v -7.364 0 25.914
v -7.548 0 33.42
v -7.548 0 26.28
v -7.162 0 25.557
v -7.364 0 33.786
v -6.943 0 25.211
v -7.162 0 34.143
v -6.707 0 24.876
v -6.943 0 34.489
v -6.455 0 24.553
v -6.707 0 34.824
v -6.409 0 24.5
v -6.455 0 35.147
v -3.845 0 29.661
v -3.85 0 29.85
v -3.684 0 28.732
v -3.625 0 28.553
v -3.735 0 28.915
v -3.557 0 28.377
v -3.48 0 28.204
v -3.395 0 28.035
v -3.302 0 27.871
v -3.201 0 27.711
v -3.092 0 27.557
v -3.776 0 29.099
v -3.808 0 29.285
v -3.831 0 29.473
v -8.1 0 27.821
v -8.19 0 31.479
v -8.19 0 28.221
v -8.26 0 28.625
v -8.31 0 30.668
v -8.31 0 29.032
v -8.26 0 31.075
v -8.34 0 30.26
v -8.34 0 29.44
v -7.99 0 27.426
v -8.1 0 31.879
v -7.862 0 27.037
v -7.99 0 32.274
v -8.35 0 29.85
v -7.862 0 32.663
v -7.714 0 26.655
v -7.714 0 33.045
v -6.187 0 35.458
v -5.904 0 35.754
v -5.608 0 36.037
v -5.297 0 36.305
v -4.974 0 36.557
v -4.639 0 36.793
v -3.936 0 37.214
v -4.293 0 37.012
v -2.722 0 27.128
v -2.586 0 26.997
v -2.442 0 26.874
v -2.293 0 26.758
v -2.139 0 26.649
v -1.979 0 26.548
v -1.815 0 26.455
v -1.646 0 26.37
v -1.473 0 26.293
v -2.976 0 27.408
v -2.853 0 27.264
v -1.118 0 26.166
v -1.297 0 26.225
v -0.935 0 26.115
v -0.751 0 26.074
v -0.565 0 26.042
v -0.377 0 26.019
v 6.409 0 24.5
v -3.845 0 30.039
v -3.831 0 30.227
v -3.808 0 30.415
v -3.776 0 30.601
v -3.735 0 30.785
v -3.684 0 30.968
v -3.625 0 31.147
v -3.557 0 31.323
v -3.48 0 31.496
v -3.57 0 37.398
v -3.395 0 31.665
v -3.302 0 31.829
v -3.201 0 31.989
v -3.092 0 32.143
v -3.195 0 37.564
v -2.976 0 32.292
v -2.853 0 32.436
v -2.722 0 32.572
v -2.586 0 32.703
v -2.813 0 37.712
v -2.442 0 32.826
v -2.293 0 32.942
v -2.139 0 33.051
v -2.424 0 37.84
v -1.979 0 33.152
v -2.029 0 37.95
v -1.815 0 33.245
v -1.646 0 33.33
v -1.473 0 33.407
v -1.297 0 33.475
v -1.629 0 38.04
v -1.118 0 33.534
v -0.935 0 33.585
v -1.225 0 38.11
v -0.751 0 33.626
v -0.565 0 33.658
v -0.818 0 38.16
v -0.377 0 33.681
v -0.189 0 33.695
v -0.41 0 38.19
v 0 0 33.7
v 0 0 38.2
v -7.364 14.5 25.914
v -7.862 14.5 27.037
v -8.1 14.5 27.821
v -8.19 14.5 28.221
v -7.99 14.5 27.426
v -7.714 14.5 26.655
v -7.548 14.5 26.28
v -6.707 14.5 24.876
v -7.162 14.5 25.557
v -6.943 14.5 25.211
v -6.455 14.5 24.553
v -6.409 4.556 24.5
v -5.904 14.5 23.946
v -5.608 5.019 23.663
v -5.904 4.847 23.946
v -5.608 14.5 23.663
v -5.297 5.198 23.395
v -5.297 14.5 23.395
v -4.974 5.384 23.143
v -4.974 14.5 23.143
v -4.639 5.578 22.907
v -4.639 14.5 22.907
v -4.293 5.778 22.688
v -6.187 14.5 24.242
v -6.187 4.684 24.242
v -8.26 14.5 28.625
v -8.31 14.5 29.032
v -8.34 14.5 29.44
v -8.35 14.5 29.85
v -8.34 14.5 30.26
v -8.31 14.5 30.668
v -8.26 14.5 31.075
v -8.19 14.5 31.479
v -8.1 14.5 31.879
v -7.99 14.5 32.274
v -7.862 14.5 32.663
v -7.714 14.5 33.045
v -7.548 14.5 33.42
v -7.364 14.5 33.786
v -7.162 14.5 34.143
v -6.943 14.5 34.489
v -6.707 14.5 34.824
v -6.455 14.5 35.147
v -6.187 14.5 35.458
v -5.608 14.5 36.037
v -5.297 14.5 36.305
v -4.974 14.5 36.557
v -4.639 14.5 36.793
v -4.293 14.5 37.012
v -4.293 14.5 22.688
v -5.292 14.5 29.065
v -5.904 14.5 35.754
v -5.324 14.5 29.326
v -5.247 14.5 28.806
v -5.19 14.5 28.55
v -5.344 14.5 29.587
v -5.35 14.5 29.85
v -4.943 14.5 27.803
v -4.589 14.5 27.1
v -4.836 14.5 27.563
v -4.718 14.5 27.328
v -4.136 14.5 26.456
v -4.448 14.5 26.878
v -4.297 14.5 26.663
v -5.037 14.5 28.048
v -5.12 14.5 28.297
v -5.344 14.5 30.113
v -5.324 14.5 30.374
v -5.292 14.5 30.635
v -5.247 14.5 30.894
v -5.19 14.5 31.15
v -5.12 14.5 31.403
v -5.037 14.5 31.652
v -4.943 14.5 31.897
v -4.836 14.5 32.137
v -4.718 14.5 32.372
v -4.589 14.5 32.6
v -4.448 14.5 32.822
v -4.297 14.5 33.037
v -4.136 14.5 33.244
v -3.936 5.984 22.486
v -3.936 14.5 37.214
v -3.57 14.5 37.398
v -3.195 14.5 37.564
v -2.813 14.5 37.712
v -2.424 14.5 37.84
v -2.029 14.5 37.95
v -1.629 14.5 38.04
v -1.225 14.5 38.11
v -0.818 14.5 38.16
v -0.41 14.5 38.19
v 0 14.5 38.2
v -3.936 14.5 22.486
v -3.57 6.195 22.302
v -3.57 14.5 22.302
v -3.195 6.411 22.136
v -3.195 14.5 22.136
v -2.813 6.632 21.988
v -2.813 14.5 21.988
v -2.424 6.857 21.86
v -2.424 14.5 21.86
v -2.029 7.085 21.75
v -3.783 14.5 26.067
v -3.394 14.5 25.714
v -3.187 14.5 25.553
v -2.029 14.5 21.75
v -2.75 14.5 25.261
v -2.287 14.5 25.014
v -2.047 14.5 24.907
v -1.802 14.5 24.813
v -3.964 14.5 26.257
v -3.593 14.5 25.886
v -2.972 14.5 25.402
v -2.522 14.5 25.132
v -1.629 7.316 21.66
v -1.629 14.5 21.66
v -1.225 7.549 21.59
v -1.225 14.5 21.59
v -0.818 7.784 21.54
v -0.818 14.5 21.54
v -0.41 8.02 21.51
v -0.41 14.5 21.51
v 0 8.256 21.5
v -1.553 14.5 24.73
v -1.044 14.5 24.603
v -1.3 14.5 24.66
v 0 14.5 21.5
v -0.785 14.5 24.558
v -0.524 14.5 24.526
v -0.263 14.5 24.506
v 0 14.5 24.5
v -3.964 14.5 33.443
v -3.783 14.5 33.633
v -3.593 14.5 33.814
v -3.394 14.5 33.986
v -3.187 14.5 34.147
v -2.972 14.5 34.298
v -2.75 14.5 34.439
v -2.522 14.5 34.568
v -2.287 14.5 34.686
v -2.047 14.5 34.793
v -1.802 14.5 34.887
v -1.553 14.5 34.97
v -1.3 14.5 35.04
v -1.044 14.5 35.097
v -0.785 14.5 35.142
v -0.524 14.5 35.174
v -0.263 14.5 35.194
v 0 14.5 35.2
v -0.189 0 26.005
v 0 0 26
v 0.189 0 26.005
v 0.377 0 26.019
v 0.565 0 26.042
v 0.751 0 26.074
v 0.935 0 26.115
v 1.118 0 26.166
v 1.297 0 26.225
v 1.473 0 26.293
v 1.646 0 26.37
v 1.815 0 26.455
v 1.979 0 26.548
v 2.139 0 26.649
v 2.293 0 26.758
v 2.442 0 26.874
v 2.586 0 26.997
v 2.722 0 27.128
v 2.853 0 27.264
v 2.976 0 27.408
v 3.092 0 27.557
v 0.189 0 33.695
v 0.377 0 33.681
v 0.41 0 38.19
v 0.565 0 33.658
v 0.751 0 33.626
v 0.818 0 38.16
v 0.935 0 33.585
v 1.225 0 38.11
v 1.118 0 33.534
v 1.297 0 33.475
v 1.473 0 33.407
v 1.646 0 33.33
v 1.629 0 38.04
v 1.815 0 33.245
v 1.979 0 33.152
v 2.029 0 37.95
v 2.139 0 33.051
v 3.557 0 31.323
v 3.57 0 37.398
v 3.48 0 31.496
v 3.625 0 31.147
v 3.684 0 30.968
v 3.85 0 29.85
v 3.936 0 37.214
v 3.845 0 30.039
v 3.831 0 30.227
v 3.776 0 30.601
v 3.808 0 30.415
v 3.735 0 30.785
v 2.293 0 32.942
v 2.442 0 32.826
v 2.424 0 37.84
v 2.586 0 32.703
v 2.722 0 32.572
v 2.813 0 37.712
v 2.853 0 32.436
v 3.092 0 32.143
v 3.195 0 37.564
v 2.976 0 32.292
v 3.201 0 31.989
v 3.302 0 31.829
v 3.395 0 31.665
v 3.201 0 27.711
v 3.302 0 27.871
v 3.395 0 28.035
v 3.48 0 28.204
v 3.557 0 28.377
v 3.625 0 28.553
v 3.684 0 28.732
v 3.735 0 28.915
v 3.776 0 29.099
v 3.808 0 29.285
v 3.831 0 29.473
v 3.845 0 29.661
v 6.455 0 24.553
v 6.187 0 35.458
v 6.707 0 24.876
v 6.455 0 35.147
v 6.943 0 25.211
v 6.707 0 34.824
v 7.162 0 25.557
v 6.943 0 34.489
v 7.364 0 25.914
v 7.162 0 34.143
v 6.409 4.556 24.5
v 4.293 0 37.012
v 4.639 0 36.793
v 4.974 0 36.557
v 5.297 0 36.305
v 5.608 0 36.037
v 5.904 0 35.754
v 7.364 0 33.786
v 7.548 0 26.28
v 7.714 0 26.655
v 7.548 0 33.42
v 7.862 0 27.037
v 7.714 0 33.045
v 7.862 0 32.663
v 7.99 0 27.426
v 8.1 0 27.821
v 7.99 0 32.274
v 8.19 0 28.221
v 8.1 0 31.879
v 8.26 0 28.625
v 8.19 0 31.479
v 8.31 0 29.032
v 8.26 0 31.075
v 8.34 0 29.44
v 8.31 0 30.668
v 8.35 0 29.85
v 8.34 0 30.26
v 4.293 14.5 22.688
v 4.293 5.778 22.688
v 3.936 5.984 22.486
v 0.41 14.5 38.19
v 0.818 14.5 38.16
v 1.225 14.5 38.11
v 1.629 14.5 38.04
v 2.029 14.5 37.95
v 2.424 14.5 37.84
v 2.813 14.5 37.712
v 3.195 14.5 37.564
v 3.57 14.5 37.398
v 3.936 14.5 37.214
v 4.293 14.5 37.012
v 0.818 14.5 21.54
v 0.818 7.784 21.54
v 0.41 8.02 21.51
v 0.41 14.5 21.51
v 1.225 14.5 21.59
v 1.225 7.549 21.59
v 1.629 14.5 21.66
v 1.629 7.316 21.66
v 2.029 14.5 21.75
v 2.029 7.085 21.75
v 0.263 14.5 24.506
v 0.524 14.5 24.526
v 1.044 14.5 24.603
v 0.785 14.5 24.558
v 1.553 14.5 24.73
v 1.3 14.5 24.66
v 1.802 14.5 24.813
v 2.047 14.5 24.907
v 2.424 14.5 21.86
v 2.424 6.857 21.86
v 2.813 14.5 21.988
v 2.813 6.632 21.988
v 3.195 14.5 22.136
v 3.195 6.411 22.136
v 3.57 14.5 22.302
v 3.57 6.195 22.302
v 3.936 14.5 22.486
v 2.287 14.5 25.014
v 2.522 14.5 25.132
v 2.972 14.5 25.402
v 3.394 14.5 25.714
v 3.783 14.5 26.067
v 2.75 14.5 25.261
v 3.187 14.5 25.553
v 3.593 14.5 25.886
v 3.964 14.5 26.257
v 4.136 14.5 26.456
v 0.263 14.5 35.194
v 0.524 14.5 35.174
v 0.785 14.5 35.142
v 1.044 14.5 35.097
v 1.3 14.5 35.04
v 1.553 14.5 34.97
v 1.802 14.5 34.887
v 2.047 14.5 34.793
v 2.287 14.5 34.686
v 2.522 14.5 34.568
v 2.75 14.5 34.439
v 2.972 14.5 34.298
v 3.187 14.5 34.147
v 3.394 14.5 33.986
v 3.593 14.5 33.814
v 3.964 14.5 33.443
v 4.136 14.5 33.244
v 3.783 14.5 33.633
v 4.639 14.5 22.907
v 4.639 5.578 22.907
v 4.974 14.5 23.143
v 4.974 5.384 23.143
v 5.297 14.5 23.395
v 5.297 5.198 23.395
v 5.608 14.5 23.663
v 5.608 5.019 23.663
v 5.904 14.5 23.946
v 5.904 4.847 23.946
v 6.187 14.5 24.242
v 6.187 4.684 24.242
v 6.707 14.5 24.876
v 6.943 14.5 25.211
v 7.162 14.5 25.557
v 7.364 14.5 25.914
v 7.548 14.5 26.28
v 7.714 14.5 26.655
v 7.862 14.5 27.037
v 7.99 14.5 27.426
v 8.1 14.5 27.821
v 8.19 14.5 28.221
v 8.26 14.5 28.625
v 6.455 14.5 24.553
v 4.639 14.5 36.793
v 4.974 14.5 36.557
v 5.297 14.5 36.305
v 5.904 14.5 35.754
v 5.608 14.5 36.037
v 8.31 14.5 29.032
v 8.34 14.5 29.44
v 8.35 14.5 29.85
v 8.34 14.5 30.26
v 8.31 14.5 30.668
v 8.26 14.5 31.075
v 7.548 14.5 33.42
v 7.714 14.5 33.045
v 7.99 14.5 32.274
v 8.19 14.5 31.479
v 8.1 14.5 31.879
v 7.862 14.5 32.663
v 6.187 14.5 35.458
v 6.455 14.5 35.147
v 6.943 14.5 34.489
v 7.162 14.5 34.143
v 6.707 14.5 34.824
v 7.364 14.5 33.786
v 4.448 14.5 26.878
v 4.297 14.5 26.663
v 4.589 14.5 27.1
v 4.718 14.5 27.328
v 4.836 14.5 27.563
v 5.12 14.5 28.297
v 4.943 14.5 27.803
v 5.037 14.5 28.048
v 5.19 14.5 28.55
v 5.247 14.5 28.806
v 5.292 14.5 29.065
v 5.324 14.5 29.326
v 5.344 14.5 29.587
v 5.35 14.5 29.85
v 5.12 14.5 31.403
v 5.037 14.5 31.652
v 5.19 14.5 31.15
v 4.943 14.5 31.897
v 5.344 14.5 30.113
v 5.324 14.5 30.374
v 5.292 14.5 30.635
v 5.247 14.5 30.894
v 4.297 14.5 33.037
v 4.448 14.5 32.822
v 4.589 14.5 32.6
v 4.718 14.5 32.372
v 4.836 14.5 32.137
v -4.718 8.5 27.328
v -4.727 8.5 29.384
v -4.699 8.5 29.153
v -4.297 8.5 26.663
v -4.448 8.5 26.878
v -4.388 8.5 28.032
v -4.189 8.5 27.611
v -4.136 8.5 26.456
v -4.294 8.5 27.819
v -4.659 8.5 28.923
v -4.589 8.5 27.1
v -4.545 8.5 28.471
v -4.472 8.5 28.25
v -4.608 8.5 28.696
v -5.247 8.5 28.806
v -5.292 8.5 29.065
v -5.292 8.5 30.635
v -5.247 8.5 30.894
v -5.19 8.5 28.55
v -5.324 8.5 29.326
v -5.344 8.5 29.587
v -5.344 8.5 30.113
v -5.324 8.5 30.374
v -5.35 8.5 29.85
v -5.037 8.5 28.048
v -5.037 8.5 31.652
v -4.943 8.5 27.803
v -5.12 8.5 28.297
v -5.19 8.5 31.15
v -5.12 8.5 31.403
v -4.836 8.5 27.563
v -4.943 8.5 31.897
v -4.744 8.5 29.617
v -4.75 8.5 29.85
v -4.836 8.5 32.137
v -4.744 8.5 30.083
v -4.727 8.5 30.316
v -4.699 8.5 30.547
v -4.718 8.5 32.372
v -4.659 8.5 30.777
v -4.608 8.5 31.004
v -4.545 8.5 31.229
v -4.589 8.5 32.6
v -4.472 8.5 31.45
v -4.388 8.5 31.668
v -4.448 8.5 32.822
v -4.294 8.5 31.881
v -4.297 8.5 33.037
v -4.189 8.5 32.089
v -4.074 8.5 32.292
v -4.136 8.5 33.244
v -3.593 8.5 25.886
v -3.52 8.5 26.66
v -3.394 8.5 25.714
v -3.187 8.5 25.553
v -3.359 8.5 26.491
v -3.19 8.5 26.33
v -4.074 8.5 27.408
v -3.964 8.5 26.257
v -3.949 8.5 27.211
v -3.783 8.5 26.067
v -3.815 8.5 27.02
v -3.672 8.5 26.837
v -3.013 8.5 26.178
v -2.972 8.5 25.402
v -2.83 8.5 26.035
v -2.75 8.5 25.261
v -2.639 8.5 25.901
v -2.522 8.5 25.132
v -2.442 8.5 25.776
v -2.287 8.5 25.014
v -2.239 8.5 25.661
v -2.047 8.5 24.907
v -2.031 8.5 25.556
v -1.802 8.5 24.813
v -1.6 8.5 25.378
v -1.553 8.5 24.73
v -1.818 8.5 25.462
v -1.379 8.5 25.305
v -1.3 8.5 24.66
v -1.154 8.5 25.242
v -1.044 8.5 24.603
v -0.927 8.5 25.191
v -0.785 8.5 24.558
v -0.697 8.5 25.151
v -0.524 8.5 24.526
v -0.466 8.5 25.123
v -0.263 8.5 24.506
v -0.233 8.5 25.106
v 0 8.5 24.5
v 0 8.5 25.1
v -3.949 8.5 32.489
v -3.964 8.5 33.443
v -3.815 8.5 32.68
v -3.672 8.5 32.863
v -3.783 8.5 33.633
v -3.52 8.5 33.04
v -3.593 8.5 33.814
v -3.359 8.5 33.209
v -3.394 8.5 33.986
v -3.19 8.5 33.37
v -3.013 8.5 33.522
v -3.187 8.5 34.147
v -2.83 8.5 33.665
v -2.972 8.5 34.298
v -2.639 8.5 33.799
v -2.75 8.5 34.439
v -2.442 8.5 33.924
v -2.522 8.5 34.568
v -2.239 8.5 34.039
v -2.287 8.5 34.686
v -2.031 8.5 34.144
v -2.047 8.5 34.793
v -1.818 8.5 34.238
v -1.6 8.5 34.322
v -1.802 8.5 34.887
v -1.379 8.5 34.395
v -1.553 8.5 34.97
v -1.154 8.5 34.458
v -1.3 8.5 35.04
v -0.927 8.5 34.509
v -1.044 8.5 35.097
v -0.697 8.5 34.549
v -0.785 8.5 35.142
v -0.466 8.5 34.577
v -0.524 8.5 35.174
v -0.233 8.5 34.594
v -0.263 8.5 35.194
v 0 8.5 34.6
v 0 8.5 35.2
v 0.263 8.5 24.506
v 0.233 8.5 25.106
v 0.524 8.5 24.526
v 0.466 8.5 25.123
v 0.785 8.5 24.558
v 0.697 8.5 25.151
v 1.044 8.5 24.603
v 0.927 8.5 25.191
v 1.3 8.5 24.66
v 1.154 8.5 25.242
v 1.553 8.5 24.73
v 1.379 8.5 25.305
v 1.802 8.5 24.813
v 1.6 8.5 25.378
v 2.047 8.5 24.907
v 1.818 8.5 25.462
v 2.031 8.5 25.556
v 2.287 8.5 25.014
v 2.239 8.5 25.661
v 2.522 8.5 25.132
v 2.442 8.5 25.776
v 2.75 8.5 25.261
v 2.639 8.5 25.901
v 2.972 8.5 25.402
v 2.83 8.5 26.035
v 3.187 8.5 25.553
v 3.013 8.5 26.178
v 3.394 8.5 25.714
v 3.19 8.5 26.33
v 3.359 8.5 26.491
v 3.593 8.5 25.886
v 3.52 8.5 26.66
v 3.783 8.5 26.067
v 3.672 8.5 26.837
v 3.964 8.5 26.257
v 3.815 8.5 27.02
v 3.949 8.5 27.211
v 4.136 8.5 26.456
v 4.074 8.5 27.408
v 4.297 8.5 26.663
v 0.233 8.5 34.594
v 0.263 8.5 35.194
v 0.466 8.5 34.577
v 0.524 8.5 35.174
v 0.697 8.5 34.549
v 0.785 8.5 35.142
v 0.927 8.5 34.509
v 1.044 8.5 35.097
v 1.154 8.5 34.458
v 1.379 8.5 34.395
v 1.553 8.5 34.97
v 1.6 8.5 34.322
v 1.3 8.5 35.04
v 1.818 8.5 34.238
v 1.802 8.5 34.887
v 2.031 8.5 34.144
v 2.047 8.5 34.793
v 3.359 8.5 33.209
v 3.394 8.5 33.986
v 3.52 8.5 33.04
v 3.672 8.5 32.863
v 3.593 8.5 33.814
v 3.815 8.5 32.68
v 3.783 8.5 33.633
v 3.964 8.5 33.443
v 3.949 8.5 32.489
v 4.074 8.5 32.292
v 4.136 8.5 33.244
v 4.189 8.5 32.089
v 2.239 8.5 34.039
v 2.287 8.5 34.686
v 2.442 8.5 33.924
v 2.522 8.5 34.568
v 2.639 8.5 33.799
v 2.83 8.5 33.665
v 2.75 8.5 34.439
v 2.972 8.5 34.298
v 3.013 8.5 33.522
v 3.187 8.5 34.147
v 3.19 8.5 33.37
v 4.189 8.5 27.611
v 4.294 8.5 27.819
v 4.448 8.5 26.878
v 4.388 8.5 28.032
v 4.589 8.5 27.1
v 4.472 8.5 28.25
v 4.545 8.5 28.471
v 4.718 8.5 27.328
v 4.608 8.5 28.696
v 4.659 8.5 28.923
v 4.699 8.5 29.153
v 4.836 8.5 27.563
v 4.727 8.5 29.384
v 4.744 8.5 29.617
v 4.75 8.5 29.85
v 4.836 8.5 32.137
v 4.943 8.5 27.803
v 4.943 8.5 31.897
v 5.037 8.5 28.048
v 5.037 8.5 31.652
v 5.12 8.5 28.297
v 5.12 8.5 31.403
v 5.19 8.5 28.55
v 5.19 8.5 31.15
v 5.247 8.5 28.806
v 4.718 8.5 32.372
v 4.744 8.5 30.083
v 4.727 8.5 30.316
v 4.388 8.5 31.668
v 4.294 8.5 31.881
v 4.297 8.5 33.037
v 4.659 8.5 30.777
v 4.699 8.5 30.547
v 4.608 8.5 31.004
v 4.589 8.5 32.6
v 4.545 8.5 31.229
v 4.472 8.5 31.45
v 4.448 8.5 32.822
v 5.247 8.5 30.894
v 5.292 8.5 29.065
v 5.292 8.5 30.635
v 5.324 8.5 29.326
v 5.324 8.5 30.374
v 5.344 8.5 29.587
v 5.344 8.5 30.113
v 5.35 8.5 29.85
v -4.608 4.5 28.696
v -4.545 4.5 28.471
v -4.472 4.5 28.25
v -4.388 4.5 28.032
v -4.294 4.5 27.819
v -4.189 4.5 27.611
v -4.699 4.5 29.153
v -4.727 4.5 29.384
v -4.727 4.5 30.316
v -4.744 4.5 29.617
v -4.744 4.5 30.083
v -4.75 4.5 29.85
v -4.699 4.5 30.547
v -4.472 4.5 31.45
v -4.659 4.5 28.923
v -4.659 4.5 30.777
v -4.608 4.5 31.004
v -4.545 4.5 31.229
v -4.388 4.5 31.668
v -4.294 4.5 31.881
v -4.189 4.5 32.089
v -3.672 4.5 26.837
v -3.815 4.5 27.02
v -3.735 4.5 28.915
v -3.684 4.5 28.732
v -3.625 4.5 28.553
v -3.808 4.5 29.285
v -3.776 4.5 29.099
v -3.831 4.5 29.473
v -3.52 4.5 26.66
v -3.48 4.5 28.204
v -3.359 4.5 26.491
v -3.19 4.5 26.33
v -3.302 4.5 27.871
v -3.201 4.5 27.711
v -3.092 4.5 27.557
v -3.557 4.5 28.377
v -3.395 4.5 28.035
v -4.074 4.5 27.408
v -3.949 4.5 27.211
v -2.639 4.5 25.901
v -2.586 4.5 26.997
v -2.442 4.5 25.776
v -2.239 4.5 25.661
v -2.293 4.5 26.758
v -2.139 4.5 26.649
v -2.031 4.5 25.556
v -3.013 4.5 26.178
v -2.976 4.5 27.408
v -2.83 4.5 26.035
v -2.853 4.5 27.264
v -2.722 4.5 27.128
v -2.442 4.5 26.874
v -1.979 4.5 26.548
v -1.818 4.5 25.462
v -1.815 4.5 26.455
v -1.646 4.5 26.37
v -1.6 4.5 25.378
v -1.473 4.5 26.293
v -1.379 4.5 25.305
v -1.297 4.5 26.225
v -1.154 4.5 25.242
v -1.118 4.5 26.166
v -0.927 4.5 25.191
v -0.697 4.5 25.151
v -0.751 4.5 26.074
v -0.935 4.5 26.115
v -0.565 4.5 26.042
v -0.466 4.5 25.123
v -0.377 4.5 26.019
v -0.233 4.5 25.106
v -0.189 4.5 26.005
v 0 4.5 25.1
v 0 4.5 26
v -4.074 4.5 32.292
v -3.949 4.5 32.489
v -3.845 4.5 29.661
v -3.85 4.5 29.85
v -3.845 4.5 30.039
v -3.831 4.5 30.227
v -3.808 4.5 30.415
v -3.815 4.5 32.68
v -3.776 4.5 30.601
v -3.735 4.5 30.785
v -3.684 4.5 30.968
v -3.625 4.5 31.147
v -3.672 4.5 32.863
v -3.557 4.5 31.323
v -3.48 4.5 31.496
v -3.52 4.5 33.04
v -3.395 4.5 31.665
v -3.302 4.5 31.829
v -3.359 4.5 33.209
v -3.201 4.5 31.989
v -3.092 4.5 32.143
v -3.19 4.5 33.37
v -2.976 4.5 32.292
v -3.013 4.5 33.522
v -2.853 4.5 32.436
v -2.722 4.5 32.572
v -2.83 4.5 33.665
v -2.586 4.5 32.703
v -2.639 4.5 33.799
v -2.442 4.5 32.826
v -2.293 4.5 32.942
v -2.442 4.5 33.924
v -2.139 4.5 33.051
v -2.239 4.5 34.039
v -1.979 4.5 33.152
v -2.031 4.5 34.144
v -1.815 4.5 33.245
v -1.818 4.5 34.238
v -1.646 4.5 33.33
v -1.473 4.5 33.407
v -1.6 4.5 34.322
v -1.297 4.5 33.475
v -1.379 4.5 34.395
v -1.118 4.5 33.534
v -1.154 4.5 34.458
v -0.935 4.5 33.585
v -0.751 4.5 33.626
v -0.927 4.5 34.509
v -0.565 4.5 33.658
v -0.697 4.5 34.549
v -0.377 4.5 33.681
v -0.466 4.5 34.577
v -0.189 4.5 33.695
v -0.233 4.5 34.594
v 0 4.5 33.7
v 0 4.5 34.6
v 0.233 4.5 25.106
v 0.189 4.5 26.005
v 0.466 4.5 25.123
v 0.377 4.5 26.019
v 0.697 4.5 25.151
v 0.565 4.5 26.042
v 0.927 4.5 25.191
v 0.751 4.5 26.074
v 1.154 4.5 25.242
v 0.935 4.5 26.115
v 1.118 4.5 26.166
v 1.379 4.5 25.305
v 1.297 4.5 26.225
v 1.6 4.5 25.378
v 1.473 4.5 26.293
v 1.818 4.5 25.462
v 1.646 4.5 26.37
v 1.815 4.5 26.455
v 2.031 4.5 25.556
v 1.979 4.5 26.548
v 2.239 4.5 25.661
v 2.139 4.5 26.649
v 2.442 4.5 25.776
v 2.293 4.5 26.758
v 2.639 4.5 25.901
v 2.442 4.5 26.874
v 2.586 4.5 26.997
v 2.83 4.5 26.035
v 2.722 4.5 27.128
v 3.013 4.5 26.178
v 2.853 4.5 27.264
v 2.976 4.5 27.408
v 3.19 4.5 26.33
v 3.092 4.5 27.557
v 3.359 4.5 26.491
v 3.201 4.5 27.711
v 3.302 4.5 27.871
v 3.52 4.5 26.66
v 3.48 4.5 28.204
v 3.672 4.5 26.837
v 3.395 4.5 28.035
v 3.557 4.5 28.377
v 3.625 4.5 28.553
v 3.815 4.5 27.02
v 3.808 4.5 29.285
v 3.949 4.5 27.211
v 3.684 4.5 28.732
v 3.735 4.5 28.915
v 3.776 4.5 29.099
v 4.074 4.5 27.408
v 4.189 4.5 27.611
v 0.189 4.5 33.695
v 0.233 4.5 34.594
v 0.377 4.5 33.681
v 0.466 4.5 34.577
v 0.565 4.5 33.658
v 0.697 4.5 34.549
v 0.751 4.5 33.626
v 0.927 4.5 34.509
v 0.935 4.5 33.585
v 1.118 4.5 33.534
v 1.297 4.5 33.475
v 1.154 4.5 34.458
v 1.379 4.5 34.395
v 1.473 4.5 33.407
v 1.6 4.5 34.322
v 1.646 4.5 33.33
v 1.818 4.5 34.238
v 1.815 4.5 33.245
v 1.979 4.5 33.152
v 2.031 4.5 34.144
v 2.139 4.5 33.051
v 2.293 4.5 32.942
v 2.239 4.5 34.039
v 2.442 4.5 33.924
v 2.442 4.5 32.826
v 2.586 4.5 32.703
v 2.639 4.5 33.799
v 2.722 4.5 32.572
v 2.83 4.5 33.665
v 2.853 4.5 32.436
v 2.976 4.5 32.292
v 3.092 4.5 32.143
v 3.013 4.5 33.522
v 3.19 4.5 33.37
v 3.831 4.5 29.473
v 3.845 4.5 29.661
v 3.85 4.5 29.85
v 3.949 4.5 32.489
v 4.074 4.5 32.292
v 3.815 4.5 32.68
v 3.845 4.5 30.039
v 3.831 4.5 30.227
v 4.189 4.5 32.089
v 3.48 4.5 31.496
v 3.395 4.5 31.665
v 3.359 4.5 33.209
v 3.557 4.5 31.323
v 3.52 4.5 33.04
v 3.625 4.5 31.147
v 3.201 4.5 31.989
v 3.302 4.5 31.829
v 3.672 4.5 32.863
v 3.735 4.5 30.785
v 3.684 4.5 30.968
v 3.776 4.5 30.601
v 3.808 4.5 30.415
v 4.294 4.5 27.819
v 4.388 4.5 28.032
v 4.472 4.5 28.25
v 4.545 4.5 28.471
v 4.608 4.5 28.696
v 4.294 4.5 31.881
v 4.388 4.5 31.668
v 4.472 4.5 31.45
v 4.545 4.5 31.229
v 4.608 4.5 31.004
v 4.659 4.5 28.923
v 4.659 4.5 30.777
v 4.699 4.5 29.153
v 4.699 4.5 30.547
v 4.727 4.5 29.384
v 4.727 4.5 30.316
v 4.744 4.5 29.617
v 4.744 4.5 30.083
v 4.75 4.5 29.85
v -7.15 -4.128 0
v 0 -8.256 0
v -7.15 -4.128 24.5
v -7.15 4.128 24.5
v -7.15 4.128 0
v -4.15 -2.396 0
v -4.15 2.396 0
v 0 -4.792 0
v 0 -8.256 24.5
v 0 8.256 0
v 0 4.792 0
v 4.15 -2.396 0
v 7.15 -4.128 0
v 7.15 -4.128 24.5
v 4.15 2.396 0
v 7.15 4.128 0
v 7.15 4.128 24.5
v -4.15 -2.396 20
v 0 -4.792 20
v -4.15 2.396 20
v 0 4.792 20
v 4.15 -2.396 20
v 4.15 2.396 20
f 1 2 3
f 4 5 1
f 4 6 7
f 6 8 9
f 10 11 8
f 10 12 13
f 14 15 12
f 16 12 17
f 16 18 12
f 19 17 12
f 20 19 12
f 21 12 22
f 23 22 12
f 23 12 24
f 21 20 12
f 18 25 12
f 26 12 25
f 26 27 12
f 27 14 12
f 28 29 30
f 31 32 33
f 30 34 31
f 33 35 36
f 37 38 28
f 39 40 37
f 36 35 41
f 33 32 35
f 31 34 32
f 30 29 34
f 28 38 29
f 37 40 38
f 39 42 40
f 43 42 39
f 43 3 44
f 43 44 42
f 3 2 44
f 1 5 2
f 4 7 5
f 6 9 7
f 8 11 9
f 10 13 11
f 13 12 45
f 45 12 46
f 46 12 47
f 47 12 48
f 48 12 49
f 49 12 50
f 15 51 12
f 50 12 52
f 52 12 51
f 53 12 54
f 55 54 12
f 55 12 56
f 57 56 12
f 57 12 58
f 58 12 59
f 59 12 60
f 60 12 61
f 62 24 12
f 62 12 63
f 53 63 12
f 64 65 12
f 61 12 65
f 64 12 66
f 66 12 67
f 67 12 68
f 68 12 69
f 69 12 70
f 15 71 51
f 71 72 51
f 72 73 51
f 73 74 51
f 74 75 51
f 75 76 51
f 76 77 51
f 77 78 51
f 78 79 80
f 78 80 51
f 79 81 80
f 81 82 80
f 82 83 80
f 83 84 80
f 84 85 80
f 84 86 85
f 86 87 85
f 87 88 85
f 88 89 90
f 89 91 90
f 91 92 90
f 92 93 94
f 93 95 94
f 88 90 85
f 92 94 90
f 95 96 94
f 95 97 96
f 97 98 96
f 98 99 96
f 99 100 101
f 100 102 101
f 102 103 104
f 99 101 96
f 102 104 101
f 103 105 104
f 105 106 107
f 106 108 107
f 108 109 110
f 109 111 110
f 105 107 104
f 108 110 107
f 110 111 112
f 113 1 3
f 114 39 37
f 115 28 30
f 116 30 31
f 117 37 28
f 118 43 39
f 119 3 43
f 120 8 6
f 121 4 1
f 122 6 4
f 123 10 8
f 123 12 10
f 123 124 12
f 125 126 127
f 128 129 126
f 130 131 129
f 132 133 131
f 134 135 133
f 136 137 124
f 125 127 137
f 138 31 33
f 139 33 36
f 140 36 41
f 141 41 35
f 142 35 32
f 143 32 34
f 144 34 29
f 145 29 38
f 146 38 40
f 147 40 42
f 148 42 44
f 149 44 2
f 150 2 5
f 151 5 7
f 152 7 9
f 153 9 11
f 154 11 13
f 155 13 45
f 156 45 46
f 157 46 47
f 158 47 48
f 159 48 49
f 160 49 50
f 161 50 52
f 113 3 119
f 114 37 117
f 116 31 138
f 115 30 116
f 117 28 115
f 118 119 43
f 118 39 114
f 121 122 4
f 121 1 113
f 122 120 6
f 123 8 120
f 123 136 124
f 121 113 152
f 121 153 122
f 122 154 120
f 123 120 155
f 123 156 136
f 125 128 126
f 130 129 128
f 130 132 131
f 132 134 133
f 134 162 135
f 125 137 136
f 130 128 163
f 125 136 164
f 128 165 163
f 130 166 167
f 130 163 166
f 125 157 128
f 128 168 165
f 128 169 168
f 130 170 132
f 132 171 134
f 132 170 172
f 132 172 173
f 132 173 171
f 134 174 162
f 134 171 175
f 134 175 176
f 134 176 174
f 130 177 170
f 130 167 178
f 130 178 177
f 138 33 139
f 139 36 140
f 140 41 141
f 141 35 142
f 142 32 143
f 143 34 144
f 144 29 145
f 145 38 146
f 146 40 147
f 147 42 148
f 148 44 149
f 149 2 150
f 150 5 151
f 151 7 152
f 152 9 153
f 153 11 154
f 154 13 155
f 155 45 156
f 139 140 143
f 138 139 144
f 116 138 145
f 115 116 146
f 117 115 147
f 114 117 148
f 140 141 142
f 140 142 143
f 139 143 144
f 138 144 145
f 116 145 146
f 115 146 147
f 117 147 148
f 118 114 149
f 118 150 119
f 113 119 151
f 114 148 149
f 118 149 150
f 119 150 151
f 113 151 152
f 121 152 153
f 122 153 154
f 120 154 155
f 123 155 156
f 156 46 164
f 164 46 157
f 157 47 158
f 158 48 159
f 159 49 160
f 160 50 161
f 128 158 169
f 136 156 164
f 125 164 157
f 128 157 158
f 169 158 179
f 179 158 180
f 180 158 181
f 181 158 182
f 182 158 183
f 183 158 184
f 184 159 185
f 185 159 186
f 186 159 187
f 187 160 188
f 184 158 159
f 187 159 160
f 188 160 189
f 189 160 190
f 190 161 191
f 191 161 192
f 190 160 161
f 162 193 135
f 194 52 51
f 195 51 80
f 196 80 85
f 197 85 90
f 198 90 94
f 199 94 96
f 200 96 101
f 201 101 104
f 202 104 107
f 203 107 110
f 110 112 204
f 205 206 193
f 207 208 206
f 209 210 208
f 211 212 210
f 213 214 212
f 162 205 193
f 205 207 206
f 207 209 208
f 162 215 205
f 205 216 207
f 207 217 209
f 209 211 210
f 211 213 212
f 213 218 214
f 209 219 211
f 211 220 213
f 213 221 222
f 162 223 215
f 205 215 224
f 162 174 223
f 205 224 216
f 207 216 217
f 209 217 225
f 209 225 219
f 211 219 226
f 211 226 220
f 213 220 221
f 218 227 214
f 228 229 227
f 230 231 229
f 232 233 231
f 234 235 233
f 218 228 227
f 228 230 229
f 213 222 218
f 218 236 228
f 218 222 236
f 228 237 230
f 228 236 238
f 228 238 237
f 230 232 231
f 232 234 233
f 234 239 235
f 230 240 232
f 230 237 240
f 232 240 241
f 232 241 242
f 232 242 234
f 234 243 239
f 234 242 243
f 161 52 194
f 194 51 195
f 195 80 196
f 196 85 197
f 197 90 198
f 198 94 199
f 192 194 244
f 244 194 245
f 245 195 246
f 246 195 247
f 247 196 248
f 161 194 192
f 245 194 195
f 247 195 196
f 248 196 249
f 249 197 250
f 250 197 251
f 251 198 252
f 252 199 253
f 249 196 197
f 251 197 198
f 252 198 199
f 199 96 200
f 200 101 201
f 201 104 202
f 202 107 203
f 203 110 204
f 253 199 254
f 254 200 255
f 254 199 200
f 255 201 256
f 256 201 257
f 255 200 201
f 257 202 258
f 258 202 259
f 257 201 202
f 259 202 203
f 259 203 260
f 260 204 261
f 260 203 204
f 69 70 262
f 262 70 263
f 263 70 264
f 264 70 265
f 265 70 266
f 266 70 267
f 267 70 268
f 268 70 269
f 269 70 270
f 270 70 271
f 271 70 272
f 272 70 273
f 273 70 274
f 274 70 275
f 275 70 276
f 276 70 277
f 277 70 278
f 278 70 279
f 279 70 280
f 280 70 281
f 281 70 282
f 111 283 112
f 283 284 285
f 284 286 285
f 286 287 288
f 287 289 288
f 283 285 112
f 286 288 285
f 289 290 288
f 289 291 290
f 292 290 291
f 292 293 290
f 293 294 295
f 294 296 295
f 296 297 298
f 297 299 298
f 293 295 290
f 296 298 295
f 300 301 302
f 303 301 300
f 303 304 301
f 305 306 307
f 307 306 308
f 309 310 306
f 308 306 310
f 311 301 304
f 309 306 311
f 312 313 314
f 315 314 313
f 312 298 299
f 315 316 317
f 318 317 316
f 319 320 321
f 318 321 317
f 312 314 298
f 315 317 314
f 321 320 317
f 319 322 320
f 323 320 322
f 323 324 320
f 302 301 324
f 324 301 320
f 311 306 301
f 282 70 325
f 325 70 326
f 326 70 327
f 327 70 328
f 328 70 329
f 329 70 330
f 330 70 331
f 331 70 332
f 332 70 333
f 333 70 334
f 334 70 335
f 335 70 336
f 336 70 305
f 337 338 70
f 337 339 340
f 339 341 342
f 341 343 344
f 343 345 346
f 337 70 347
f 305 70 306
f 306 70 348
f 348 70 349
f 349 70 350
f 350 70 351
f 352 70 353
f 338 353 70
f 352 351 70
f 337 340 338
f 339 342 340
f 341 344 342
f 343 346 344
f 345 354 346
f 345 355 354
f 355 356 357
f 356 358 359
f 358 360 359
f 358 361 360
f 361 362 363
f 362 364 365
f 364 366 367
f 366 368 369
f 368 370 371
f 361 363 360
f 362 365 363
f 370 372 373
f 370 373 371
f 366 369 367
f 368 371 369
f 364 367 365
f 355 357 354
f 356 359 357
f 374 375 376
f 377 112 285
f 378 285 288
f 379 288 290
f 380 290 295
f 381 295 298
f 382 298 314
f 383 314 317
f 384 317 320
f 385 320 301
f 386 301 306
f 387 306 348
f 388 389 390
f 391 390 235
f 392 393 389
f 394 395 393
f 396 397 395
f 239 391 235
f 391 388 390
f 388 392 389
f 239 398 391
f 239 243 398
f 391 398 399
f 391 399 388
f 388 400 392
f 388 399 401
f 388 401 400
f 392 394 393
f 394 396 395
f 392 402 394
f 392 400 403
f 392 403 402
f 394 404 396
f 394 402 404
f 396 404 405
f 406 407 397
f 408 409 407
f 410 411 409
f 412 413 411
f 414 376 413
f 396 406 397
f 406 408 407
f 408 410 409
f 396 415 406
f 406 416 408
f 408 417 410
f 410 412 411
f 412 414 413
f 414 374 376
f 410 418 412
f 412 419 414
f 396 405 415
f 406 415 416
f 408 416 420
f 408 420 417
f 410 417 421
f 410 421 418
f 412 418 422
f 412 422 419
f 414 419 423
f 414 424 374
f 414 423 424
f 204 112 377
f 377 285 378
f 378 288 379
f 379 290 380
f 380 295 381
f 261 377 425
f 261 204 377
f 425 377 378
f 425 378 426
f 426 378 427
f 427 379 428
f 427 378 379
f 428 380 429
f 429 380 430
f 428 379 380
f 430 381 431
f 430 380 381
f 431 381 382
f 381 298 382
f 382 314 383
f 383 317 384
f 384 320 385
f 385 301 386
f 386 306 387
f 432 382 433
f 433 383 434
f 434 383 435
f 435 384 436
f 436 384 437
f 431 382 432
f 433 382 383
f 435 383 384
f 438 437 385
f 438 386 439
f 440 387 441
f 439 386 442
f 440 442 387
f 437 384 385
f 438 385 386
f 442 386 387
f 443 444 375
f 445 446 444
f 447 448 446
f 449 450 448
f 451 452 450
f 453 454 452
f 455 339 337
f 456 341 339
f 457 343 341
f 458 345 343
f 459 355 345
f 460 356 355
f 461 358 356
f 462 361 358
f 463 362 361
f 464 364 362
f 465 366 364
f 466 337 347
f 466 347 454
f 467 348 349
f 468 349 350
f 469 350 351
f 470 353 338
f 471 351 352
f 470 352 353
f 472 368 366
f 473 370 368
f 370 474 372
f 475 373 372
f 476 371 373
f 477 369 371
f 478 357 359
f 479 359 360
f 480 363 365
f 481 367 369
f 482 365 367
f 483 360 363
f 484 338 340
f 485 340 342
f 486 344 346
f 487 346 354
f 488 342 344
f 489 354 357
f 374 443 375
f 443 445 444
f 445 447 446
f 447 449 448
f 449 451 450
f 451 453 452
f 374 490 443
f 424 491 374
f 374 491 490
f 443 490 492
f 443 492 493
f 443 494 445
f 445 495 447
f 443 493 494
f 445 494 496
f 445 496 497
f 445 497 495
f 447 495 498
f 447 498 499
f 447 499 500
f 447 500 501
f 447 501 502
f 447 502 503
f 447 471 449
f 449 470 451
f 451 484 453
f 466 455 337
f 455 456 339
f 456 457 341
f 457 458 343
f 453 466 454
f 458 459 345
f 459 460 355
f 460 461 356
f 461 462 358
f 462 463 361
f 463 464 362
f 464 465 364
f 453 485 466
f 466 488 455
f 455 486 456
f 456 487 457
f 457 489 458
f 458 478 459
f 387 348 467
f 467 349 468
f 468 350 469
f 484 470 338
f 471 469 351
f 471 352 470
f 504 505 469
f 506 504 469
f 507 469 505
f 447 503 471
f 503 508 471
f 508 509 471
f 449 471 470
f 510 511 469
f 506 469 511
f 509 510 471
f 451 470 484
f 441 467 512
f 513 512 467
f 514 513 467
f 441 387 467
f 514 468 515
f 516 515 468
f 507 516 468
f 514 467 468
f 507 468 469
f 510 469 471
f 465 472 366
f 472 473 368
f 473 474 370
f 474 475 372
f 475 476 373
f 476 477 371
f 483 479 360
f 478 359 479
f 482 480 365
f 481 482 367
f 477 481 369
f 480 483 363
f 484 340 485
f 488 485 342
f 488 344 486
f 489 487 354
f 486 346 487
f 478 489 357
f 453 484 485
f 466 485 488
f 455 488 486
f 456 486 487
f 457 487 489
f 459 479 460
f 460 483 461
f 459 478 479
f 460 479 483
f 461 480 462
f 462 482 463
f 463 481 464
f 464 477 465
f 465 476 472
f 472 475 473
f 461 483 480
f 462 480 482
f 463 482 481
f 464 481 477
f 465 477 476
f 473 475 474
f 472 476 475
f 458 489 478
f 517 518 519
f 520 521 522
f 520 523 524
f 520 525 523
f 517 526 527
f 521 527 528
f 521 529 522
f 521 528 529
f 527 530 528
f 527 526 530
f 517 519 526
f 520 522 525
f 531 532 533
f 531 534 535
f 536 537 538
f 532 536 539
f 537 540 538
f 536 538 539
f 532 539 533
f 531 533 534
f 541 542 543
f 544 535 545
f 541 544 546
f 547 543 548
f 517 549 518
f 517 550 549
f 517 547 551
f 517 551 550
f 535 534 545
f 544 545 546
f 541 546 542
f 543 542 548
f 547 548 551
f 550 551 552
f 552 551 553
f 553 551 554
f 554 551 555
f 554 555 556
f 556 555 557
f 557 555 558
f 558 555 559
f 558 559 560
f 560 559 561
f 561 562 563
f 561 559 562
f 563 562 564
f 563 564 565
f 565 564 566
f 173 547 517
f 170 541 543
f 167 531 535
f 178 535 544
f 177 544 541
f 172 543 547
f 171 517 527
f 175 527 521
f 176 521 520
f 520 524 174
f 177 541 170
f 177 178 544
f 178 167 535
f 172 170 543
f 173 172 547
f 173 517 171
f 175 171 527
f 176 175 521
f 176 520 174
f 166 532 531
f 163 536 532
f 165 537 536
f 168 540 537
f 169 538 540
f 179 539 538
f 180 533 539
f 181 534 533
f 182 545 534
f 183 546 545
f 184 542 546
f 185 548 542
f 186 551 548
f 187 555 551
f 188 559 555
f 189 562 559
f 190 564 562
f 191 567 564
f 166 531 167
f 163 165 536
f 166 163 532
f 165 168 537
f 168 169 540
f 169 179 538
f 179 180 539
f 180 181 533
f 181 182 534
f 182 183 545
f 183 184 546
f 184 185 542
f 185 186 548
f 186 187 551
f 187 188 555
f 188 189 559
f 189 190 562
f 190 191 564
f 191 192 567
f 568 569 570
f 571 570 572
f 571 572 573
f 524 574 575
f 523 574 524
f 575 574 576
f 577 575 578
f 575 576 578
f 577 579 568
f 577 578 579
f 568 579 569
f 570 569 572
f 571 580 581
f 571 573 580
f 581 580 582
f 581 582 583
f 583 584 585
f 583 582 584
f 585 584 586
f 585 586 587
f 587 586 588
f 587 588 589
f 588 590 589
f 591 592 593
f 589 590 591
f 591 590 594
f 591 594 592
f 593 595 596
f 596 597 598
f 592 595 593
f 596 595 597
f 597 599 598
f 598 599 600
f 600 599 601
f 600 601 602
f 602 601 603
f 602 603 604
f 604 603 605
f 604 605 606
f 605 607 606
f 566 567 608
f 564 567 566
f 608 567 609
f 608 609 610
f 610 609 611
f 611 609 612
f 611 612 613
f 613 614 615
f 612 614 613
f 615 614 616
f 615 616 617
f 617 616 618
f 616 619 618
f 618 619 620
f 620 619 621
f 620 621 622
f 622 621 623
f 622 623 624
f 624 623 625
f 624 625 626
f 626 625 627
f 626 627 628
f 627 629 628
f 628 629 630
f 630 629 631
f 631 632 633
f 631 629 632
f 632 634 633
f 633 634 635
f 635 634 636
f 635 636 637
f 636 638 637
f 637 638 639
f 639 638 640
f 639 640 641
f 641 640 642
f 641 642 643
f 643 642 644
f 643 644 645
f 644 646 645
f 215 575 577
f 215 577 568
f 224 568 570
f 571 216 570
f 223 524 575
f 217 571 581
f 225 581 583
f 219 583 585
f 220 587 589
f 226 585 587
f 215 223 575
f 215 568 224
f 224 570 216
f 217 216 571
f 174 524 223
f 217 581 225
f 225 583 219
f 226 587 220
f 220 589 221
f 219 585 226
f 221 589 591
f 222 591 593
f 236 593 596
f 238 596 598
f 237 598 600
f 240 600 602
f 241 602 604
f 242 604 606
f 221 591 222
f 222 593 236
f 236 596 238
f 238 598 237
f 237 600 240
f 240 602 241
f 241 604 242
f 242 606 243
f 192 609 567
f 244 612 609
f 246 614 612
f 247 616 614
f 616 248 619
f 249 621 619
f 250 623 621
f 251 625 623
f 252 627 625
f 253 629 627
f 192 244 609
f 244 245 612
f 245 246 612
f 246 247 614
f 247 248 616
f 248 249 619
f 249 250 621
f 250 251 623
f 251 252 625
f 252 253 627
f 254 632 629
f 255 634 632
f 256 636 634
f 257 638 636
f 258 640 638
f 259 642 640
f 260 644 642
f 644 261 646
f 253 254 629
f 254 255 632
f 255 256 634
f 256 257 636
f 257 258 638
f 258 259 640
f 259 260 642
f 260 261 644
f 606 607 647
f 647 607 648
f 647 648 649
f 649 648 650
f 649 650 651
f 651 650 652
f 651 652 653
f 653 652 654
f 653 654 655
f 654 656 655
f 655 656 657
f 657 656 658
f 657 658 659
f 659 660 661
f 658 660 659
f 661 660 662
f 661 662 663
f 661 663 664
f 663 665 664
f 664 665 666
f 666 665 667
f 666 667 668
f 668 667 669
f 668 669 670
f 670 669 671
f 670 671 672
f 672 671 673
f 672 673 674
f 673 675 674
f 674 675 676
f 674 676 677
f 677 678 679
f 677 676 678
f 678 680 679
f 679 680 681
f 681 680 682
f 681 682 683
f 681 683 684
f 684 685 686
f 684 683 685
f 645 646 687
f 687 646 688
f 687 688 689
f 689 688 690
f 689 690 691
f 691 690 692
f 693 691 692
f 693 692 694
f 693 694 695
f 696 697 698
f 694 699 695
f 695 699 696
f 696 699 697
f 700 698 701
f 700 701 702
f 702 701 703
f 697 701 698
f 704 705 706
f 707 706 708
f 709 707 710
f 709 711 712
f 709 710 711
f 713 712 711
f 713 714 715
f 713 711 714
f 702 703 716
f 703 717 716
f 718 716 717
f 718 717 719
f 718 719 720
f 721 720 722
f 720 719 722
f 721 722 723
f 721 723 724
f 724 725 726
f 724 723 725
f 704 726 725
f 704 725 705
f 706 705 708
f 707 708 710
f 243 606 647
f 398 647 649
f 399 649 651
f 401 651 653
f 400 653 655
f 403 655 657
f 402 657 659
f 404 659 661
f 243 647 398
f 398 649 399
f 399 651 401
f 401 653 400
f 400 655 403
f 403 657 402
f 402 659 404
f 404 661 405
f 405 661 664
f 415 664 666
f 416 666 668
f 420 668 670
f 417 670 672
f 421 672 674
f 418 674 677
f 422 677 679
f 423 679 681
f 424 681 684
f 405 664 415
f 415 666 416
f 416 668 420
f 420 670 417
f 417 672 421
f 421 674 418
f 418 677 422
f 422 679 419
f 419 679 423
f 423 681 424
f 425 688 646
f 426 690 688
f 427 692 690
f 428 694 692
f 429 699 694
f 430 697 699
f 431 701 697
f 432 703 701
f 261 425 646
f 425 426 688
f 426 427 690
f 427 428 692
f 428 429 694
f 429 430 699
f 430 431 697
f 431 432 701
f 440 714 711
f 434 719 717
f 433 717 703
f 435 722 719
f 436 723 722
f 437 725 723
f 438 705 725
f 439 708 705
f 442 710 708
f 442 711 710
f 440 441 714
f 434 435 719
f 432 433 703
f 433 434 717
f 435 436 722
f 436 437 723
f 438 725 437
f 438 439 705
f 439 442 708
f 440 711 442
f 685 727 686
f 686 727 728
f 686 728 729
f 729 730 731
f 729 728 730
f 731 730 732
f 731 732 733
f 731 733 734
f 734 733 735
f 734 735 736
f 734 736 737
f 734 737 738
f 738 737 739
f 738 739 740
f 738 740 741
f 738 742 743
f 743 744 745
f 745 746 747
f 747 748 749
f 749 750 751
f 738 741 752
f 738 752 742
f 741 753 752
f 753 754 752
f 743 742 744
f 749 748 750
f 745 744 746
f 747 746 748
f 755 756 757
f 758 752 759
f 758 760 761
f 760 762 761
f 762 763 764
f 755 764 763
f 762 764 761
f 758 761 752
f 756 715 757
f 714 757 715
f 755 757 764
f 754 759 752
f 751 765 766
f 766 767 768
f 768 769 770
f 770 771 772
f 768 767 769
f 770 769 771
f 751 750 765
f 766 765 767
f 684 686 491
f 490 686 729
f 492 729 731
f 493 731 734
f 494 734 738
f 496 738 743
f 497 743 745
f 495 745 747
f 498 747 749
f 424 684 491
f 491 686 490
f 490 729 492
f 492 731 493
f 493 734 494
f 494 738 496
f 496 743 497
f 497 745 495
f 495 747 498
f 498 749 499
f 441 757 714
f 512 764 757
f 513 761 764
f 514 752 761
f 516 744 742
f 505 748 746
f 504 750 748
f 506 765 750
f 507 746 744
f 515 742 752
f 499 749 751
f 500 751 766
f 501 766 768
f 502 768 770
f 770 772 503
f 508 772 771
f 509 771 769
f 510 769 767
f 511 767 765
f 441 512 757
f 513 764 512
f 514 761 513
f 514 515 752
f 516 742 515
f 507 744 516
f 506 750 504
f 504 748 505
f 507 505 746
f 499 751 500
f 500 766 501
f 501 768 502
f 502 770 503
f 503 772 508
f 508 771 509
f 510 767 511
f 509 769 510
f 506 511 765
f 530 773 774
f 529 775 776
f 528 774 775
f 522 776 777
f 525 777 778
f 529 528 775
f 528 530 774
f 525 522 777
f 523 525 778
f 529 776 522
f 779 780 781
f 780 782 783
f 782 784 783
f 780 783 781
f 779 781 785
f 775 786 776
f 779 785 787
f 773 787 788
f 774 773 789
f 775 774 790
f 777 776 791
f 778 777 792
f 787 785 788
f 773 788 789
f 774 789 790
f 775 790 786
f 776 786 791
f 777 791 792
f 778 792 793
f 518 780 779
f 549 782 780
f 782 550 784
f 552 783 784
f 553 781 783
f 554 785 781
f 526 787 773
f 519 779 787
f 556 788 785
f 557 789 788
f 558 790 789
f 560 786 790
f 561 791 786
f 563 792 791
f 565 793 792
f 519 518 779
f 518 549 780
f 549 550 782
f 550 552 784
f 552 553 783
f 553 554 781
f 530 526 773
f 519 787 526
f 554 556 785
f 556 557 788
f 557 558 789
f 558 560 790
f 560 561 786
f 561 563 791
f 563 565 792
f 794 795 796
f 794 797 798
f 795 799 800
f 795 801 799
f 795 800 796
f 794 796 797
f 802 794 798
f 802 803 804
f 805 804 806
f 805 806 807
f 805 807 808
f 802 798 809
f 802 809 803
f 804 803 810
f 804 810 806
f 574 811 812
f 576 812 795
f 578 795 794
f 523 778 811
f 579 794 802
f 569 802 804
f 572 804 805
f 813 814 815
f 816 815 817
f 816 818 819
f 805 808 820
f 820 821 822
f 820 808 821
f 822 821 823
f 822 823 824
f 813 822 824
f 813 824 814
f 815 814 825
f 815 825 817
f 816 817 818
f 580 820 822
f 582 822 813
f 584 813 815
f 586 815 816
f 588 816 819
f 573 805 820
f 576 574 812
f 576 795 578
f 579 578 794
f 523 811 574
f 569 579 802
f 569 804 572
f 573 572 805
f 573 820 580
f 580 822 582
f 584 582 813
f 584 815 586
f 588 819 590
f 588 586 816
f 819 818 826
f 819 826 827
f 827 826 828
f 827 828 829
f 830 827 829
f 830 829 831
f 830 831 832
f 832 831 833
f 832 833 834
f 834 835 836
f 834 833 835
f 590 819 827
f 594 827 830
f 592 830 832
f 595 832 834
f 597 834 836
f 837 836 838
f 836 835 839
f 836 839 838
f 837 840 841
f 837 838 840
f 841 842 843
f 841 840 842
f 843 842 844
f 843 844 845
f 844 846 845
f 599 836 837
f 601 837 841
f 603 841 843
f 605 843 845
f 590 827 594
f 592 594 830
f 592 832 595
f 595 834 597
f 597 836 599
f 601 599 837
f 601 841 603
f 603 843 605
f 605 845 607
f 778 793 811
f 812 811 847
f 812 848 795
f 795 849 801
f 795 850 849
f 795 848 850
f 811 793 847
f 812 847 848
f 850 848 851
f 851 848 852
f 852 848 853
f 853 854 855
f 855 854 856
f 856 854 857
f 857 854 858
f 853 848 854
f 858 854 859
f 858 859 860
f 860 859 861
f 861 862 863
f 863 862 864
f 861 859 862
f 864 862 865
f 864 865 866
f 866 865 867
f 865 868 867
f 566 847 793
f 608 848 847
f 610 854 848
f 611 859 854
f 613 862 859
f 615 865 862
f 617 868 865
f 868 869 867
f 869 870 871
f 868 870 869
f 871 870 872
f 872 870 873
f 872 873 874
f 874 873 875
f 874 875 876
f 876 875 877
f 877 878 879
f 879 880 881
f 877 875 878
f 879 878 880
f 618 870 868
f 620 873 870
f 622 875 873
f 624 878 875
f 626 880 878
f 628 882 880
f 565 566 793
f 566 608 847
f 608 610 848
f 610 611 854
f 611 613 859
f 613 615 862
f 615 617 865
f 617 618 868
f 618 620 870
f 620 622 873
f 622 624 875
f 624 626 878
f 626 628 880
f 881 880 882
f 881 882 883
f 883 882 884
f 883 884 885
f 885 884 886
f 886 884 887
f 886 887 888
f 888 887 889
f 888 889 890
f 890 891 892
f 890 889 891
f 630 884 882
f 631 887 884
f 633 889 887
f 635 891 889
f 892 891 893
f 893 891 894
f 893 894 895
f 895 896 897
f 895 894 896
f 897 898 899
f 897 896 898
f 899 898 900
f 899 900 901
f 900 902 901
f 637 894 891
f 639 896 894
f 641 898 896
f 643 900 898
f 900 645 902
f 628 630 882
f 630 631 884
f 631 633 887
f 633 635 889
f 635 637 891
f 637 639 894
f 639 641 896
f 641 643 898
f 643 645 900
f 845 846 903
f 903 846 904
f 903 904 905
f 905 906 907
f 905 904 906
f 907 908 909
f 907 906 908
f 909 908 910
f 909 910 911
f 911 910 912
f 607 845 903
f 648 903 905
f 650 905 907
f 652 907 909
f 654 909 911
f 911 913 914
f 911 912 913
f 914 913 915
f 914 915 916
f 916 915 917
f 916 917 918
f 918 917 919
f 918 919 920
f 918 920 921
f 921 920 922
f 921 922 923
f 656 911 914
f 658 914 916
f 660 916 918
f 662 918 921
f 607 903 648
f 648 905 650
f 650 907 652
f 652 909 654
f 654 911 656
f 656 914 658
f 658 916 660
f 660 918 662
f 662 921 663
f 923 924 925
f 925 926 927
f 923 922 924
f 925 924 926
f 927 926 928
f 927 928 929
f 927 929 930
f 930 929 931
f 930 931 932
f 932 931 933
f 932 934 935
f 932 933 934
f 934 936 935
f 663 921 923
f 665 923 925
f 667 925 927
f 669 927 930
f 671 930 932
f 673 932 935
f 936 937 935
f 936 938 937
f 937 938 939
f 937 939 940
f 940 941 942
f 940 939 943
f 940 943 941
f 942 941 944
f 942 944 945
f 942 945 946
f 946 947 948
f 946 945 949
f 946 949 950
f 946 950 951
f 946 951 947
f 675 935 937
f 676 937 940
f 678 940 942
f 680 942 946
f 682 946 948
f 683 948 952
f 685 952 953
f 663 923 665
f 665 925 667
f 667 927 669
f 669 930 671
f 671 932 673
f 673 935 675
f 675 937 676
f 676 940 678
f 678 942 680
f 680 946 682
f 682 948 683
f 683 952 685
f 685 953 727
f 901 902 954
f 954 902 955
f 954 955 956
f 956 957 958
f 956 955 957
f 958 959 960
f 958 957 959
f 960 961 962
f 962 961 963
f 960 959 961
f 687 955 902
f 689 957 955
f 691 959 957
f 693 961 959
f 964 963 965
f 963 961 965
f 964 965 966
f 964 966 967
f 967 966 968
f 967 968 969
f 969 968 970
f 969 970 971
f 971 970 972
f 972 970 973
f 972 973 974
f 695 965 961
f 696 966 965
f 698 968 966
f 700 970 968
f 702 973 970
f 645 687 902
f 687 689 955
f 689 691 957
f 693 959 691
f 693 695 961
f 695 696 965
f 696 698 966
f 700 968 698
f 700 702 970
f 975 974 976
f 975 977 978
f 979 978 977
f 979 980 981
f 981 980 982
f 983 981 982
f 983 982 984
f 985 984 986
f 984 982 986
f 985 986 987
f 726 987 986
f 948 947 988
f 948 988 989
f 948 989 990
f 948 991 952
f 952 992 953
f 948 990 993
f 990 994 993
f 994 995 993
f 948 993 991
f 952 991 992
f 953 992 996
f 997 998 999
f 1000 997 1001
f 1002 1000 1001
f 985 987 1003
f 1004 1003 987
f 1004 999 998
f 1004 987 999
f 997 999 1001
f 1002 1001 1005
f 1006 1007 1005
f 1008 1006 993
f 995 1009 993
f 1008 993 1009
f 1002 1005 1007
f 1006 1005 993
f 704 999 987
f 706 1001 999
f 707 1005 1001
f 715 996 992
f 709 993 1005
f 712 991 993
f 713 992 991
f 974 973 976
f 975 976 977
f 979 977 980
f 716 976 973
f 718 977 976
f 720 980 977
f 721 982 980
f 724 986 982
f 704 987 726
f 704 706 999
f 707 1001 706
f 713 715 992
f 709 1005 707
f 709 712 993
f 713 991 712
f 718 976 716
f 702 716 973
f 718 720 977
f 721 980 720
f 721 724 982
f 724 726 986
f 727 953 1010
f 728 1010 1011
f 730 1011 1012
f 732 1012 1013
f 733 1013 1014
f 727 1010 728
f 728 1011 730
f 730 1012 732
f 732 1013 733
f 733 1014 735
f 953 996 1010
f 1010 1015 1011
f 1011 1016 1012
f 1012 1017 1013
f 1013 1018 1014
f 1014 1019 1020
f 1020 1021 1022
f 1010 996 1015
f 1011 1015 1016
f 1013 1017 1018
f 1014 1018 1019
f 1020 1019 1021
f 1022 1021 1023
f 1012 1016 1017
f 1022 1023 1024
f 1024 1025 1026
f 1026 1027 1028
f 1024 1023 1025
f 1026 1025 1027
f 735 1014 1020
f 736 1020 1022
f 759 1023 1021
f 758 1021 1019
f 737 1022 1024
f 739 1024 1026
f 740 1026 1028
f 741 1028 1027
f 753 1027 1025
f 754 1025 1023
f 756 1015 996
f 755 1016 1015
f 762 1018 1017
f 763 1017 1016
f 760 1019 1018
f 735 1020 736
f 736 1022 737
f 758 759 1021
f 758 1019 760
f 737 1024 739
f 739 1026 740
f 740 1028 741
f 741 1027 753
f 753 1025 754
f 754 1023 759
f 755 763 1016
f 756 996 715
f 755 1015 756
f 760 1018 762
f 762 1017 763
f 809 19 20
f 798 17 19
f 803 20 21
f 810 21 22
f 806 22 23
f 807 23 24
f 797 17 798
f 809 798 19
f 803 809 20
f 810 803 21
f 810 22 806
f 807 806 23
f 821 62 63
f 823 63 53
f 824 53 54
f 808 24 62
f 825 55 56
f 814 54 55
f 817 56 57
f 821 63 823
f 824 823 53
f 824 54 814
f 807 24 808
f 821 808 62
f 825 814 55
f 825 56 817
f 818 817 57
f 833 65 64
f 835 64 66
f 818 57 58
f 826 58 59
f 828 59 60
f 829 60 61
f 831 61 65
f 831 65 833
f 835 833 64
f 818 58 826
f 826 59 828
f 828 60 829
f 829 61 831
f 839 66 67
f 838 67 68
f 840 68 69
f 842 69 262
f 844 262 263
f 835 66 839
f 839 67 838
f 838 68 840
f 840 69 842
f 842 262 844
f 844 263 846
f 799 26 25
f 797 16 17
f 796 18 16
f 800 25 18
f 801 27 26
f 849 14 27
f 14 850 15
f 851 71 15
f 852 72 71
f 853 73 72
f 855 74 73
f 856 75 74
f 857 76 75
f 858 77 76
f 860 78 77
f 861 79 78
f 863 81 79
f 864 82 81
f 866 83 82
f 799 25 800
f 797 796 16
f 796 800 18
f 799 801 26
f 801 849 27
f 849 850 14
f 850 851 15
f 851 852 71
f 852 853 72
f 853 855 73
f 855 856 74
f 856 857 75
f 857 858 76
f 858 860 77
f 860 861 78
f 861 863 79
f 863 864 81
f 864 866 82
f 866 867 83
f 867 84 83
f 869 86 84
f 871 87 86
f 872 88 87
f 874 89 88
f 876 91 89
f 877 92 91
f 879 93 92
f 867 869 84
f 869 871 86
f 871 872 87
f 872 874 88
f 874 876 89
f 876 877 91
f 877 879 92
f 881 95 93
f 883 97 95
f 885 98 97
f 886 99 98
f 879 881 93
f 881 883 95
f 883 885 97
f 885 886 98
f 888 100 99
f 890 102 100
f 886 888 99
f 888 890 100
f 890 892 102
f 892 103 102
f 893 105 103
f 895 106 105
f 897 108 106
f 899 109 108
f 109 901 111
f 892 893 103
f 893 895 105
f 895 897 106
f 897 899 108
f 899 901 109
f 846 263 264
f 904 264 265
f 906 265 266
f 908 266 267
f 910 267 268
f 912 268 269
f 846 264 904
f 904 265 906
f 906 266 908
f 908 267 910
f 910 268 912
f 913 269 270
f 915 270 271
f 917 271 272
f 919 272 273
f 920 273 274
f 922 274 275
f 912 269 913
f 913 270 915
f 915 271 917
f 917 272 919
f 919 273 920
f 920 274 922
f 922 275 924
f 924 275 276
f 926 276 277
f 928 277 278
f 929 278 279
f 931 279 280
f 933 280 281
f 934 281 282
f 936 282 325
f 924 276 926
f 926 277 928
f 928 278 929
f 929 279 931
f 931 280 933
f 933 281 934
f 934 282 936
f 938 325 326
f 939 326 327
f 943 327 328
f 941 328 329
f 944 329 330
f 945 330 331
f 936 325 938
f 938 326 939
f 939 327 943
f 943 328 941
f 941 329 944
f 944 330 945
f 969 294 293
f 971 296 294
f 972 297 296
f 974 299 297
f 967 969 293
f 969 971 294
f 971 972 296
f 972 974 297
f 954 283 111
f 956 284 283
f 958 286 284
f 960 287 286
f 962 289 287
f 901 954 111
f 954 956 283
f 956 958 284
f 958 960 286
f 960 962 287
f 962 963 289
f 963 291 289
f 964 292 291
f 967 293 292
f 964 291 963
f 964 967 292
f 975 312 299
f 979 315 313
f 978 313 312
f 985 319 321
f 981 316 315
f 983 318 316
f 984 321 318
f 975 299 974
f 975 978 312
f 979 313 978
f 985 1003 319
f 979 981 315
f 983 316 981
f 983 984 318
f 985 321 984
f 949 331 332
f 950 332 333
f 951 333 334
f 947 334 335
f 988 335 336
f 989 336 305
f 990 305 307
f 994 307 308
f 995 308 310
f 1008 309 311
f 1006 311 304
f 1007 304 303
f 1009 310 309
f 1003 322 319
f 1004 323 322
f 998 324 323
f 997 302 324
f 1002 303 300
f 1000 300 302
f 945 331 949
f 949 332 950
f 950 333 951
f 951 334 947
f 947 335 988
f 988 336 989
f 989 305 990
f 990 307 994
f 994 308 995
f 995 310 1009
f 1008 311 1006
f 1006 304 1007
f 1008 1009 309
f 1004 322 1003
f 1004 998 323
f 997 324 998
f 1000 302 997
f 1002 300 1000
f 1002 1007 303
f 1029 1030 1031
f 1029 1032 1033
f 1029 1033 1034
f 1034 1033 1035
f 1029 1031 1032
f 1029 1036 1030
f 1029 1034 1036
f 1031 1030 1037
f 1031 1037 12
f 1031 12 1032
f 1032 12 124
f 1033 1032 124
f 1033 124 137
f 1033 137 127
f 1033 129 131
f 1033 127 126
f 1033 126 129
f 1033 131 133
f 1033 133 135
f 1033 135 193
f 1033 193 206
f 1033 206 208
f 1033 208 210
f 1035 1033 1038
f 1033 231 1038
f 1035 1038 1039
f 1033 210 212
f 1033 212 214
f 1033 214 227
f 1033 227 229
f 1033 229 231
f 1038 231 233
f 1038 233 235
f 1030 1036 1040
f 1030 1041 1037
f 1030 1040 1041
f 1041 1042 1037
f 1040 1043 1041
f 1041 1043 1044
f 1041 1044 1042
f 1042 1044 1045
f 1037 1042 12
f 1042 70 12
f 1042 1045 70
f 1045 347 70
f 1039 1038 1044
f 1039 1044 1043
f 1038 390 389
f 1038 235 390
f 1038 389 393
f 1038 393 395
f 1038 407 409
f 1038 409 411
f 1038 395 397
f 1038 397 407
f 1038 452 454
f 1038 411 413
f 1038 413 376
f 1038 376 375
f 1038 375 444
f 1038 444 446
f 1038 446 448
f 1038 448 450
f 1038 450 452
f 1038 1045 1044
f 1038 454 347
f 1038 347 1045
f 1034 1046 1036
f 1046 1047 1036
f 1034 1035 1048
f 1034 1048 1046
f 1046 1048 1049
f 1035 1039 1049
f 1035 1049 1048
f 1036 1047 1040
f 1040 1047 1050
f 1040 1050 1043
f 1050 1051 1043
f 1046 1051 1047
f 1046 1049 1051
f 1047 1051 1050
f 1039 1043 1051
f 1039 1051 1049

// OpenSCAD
// file: laser_mount.scad
include <config.scad>


module laser_mount() {
	difference() {
		cylinder(laser_length_2, laser_sleeve_radius, laser_sleeve_radius);
		cylinder(laser_length_0, laser_radius_0, laser_radius_0);
		cylinder(laser_length_1, laser_radius_1, laser_radius_1);
		cylinder(laser_length_2, laser_radius_2, laser_radius_2);
	}
}

laser_mount();
// file: bolt_mount.scad
include <config.scad>

use <laser_mount.scad>

module hexagon(width) {
	diagonal = width * tan(30) + (width / 2) / cos(30);
	polygon(points = [
		[0, diagonal / 2],
		[width / 2,  width * tan(30) / 2],
		[width / 2, -width * tan(30) / 2],
		[0, -diagonal / 2],
		[-width / 2, -width * tan(30) / 2],
		[-width / 2,  width * tan(30) / 2],
	]);
}

module bolt_mount() {
	difference() {
		linear_extrude(bolt_hex_length + bolt_cap + laser_inset) hexagon(bolt_mount_width);	
		linear_extrude(bolt_hex_length)            hexagon(bolt_hex_width);
		translate([0, laser_length_2, bolt_hex_length + bolt_cap + laser_sleeve_radius - laser_inset]) rotate([90, 0, 0])
			laser_mount();
	}
}

bolt_mount();
// file: config.scad
$fn = 128;

laser_length_0 = 6;
laser_length_1 = 10;
laser_length_2 = 14.5;
laser_radius_0 = 10.7 / 2;
laser_radius_1 = 9.5 / 2;
laser_radius_2 = 7.7 / 2;

laser_sleeve_thickness = 3;
laser_sleeve_radius = laser_sleeve_thickness + laser_radius_0;

laser_inset = (laser_sleeve_radius - laser_radius_0) / 2;

bolt_hex_width = 8.3;
bolt_hex_length = 20;
bolt_mount_thickness = 3; 
bolt_mount_width = bolt_hex_width + bolt_mount_thickness * 2;
bolt_cap = 3;
 
// main file
include <config.scad>

use <bolt_mount.scad>
use <laser_mount.scad>

module mount() {
	union() {
		translate([0, laser_length_2, bolt_hex_length + bolt_cap + laser_sleeve_radius - laser_inset]) rotate([90, 0, 0])
			laser_mount();
		bolt_mount();
	}
}

mount();
